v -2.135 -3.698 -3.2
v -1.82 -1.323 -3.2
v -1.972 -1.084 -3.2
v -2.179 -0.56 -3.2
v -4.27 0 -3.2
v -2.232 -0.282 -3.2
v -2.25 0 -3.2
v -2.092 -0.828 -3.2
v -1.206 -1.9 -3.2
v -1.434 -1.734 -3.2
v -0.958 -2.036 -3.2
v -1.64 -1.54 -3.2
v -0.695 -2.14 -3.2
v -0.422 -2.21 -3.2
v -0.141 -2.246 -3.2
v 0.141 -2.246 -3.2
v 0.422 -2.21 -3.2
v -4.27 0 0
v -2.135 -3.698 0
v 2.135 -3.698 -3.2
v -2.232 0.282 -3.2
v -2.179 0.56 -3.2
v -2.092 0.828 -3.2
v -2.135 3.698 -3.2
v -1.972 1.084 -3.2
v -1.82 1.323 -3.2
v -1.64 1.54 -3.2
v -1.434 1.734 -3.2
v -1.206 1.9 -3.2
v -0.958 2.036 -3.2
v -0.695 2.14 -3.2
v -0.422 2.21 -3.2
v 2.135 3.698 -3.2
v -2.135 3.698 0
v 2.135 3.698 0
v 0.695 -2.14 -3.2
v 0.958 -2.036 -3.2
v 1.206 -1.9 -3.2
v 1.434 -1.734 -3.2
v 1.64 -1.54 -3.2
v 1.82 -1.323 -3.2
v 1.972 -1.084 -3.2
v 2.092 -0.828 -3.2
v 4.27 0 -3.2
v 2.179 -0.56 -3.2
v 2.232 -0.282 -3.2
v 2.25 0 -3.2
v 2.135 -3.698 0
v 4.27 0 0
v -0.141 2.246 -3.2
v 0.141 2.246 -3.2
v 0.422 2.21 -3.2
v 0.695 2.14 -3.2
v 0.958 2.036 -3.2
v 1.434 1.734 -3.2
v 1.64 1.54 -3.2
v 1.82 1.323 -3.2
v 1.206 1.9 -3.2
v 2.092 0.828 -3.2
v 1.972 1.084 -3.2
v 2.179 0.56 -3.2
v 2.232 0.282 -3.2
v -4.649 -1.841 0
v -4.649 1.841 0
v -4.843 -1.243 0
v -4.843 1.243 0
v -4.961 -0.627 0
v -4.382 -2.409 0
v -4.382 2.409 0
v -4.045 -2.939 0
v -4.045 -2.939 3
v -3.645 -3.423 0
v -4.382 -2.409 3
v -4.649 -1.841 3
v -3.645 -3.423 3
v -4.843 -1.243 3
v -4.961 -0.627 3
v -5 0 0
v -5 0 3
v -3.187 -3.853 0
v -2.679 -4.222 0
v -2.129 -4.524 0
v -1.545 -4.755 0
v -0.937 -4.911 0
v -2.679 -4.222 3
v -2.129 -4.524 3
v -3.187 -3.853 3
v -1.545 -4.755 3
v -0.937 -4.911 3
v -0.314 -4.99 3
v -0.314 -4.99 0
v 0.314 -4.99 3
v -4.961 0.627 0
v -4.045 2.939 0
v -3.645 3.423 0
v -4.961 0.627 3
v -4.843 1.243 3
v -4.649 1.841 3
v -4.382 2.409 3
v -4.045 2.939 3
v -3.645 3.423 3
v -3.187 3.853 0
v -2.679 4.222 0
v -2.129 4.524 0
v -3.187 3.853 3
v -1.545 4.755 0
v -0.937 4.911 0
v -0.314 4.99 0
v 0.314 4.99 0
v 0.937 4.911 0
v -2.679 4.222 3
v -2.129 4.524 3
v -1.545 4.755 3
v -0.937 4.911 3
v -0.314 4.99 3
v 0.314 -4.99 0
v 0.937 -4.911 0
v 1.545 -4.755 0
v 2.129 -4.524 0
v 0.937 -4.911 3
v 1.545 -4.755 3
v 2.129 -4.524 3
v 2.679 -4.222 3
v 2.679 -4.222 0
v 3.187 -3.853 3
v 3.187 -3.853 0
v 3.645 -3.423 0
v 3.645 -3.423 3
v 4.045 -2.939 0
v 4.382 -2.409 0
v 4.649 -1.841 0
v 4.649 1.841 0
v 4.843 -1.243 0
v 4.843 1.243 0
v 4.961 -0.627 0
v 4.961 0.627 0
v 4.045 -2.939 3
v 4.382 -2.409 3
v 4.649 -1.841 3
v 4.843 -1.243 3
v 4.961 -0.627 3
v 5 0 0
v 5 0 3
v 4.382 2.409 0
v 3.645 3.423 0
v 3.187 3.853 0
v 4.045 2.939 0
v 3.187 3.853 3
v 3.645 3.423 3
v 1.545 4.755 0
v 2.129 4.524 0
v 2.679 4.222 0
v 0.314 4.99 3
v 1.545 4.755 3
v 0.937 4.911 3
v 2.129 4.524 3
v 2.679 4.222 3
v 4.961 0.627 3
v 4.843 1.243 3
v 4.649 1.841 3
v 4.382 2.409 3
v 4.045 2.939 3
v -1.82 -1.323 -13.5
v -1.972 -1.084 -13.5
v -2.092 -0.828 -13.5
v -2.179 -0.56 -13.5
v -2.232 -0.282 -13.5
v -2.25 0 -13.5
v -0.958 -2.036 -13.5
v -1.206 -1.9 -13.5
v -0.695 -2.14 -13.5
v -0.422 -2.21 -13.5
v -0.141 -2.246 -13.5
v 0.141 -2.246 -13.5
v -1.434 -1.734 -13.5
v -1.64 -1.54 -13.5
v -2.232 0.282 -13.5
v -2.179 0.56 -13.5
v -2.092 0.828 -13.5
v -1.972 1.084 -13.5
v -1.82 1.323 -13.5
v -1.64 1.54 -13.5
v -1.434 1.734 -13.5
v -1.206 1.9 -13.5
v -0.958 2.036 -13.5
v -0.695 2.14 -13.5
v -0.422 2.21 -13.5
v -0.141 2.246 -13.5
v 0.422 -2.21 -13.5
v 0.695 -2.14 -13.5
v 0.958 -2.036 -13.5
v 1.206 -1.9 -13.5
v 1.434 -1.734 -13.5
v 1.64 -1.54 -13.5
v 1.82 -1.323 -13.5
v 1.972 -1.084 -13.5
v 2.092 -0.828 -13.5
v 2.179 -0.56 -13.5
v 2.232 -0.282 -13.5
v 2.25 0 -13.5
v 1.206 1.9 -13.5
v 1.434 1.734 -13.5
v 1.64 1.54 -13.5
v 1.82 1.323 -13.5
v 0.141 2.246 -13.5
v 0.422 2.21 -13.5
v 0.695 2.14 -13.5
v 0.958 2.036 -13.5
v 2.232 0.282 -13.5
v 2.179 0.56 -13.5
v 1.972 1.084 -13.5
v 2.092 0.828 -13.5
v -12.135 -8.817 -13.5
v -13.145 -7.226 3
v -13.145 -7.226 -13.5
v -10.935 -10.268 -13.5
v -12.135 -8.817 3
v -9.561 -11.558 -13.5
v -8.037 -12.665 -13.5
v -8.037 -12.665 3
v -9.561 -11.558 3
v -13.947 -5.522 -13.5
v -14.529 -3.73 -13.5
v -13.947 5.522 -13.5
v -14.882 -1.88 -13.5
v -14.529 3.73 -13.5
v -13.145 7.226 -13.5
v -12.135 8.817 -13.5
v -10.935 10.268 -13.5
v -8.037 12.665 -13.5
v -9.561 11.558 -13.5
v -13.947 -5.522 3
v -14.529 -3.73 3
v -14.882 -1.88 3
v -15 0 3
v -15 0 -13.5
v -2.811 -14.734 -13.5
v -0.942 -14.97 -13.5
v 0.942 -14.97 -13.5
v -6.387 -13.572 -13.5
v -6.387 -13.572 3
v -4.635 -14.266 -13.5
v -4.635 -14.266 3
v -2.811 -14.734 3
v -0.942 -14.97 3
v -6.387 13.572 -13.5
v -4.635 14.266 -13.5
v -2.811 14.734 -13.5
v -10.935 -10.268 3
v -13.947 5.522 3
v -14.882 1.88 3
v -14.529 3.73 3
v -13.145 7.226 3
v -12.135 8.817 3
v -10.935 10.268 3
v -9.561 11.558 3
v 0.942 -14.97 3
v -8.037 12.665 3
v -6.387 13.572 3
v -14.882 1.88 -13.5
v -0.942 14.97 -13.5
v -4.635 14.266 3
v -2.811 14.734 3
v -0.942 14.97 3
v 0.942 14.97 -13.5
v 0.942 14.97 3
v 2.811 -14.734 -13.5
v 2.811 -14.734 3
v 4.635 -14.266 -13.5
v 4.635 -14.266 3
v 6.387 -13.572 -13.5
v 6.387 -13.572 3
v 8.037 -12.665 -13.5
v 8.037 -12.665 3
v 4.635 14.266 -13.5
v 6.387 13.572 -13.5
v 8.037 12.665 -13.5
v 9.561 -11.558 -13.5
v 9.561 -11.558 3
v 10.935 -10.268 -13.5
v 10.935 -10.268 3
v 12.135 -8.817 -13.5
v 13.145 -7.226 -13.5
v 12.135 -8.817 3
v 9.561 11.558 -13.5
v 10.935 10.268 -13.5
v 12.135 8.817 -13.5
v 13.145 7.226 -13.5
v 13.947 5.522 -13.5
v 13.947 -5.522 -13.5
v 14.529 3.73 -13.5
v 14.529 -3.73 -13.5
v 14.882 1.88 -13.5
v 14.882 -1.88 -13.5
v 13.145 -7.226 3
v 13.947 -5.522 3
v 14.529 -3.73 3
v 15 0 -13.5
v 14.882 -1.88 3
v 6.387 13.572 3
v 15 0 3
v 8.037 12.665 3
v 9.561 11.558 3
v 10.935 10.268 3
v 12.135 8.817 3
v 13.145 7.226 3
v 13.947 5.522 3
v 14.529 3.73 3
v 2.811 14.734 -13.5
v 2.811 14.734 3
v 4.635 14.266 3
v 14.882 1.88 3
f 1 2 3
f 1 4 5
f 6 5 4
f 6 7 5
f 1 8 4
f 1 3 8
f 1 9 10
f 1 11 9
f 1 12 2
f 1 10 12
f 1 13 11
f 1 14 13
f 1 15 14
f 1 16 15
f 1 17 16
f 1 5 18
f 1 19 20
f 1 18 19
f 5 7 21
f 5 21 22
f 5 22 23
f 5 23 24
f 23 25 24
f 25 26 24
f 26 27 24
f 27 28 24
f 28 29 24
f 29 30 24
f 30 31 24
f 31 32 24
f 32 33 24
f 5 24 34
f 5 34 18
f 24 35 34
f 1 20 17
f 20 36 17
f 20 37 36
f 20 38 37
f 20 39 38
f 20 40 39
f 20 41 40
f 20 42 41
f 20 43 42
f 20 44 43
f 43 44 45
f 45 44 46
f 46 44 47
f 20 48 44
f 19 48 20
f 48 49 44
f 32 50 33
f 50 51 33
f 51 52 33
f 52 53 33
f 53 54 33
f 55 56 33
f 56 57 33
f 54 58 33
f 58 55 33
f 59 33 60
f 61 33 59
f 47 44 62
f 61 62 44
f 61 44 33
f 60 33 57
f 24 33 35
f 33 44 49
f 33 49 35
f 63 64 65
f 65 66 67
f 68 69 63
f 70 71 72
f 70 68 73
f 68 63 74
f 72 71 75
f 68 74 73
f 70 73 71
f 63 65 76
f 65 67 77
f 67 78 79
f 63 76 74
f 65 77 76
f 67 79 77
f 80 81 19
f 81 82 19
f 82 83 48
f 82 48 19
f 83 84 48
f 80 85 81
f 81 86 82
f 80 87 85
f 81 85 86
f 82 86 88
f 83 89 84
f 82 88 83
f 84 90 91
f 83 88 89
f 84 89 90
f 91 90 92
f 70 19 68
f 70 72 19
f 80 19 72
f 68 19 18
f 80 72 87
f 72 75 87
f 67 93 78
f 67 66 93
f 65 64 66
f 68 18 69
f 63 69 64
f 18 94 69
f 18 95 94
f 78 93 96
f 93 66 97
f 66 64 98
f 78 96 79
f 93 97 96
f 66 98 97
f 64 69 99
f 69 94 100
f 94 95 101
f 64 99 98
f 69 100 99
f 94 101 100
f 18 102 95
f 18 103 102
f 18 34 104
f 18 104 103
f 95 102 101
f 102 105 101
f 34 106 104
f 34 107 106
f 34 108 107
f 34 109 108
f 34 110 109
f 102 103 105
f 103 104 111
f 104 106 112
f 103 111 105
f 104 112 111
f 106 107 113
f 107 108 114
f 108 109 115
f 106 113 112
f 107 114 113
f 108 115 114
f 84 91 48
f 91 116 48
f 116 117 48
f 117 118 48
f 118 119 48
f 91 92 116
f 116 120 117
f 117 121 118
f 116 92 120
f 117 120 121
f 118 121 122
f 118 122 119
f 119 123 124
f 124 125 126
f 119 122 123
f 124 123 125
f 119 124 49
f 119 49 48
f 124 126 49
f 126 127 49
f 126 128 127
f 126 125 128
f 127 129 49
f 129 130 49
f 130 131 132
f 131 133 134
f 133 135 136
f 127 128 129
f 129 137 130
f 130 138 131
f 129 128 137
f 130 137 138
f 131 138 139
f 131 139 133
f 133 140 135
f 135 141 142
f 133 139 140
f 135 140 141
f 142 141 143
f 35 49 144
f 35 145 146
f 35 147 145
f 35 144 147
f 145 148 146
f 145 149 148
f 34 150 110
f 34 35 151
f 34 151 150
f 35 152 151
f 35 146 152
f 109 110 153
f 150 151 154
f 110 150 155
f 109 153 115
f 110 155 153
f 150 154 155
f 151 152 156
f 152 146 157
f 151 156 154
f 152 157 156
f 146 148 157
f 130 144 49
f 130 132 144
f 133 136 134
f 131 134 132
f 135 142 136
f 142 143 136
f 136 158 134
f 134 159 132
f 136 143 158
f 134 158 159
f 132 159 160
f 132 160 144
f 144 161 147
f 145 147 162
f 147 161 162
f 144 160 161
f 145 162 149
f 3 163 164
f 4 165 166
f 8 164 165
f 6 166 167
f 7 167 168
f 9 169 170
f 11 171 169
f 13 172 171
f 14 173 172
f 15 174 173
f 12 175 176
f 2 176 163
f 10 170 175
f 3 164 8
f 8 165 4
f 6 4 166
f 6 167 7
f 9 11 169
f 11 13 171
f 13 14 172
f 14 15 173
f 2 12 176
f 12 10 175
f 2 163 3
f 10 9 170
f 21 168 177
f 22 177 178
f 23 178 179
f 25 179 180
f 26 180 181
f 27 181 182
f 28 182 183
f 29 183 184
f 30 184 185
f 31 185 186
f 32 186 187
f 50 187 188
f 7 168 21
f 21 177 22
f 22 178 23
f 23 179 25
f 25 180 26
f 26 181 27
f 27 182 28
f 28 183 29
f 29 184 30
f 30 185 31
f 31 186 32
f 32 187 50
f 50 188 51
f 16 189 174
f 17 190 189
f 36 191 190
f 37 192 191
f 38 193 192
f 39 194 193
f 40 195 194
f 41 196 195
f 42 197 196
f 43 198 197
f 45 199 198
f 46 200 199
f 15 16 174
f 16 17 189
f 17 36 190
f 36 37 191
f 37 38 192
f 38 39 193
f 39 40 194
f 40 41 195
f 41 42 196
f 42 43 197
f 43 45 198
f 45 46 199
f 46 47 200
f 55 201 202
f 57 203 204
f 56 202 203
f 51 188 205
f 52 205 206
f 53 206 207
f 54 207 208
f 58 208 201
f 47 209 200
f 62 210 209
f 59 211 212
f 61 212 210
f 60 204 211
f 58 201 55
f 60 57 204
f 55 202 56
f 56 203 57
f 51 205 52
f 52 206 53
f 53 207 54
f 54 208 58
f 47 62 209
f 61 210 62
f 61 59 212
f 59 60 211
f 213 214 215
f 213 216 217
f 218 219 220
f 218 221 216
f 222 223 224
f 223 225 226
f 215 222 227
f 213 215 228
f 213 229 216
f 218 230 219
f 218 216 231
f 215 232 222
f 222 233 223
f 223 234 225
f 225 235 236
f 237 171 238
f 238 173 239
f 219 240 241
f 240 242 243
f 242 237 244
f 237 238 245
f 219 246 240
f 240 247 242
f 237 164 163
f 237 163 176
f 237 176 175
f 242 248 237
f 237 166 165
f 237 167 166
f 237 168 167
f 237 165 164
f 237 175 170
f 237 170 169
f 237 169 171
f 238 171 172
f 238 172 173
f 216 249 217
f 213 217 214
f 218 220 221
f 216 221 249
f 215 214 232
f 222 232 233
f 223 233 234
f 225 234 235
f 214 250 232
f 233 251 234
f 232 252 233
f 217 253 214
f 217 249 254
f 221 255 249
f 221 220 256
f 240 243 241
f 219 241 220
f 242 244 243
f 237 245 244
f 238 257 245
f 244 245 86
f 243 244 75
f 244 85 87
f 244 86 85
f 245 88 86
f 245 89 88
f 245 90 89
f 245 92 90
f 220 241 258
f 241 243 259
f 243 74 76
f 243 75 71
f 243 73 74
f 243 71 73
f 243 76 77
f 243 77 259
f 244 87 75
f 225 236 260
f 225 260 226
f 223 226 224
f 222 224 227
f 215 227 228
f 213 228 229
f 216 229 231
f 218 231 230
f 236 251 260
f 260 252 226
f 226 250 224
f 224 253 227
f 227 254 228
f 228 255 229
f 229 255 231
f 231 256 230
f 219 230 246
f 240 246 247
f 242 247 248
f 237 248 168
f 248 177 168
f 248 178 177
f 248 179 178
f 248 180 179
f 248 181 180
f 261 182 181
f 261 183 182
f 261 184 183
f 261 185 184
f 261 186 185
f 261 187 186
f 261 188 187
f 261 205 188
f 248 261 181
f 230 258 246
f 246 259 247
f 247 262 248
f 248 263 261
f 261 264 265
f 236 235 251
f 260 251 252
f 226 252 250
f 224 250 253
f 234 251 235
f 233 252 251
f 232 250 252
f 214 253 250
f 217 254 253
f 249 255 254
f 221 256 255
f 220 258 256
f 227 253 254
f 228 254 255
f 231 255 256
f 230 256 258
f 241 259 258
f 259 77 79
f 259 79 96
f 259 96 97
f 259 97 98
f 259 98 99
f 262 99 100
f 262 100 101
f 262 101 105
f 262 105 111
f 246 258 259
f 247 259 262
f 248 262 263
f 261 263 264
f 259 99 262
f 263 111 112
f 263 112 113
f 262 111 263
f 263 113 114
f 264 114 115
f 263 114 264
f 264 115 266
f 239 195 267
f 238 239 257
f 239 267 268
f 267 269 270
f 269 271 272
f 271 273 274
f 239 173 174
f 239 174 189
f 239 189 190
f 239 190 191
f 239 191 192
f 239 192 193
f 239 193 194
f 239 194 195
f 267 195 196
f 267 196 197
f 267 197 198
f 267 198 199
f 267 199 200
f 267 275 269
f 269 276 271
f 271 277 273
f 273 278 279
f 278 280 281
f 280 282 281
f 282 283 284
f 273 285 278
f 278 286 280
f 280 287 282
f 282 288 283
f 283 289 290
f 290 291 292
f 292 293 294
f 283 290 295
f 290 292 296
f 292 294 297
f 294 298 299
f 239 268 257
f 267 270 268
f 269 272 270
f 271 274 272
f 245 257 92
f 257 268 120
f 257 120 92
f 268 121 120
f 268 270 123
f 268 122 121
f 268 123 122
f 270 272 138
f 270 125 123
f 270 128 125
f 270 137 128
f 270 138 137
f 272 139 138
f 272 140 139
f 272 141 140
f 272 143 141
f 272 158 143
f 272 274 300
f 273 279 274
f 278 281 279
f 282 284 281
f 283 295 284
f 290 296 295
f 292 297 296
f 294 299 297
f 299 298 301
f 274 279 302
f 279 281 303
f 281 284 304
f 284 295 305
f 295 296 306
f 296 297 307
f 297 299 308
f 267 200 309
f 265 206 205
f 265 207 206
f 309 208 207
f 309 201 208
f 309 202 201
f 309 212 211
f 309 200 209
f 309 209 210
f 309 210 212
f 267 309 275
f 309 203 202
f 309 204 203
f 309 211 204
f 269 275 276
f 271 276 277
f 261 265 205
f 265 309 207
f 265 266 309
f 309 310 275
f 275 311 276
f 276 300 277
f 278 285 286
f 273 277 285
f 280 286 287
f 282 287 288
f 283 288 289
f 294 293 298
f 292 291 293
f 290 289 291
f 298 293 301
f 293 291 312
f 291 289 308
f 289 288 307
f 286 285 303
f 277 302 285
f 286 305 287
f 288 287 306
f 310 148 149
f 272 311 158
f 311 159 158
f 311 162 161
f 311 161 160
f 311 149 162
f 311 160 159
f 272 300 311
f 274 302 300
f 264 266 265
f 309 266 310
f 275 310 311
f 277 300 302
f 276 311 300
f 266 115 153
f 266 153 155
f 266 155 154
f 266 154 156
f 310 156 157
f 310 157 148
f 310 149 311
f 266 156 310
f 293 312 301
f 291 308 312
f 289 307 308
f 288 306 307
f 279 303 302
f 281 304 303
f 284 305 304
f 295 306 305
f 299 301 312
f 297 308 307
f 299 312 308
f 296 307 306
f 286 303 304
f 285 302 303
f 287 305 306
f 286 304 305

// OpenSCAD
$fn = 50;

difference() {
	union() {
		translate(v = [0, 0, -13.5]) {
			cylinder(h = 16.5, r = 15.0);
		}
	}
	union() {
		translate(v = [0, 0, 0]) {
			rotate(a = [0, 0, 0]) {
				difference() {
					union() {
						translate(v = [0, 0, -3.2]) {
							linear_extrude(height = 3.2) {
								polygon(points = [[4.2698, 0.0], [2.1349000000000005, 3.697755269078796], [-2.134899999999999, 3.6977552690787965], [-4.2698, 5.228996902999369e-16], [-2.134900000000002, -3.6977552690787956], [2.1348999999999974, -3.697755269078798]]);
							}
						}
					}
					union();
				}
			}
		}
		#cylinder(h = 3, r = 5.0);
		#translate(v = [0, 0, -100.0]) {
			cylinder(h = 200, r = 2.25);
		}
	}
}
